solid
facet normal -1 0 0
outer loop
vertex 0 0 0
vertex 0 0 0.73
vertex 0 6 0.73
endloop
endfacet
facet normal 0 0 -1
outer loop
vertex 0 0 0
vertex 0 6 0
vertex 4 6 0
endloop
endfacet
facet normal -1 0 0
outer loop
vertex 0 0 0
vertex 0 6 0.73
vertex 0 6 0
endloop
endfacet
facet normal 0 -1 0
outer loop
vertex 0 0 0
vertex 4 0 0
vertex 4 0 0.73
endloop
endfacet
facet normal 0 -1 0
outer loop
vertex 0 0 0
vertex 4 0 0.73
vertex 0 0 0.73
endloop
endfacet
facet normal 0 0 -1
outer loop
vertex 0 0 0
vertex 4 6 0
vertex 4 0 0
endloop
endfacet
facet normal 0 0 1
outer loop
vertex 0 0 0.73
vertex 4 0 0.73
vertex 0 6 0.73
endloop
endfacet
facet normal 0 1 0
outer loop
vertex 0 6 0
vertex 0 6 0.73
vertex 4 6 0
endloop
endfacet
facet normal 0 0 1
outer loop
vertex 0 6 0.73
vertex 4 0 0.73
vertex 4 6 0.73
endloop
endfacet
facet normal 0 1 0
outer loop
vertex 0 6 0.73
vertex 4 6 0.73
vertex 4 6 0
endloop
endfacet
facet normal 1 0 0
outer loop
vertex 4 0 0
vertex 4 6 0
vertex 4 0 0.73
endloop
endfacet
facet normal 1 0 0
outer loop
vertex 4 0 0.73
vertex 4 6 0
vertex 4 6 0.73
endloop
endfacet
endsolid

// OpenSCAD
/* Warning, this is a very basic generator with a lot of approximation 
input data : [WFBGA, 2MX, 4x6x0.73mm, 34, , A, C04-00164A]
generated by com.zoubworld.electronics.cad.model3d.Basic
Date : Sun Feb 15 10:50:48 CET 2026
*/

//body
color("black")
translate([0,0,0])
cube([4.0,6.0,0.73], center=false);
